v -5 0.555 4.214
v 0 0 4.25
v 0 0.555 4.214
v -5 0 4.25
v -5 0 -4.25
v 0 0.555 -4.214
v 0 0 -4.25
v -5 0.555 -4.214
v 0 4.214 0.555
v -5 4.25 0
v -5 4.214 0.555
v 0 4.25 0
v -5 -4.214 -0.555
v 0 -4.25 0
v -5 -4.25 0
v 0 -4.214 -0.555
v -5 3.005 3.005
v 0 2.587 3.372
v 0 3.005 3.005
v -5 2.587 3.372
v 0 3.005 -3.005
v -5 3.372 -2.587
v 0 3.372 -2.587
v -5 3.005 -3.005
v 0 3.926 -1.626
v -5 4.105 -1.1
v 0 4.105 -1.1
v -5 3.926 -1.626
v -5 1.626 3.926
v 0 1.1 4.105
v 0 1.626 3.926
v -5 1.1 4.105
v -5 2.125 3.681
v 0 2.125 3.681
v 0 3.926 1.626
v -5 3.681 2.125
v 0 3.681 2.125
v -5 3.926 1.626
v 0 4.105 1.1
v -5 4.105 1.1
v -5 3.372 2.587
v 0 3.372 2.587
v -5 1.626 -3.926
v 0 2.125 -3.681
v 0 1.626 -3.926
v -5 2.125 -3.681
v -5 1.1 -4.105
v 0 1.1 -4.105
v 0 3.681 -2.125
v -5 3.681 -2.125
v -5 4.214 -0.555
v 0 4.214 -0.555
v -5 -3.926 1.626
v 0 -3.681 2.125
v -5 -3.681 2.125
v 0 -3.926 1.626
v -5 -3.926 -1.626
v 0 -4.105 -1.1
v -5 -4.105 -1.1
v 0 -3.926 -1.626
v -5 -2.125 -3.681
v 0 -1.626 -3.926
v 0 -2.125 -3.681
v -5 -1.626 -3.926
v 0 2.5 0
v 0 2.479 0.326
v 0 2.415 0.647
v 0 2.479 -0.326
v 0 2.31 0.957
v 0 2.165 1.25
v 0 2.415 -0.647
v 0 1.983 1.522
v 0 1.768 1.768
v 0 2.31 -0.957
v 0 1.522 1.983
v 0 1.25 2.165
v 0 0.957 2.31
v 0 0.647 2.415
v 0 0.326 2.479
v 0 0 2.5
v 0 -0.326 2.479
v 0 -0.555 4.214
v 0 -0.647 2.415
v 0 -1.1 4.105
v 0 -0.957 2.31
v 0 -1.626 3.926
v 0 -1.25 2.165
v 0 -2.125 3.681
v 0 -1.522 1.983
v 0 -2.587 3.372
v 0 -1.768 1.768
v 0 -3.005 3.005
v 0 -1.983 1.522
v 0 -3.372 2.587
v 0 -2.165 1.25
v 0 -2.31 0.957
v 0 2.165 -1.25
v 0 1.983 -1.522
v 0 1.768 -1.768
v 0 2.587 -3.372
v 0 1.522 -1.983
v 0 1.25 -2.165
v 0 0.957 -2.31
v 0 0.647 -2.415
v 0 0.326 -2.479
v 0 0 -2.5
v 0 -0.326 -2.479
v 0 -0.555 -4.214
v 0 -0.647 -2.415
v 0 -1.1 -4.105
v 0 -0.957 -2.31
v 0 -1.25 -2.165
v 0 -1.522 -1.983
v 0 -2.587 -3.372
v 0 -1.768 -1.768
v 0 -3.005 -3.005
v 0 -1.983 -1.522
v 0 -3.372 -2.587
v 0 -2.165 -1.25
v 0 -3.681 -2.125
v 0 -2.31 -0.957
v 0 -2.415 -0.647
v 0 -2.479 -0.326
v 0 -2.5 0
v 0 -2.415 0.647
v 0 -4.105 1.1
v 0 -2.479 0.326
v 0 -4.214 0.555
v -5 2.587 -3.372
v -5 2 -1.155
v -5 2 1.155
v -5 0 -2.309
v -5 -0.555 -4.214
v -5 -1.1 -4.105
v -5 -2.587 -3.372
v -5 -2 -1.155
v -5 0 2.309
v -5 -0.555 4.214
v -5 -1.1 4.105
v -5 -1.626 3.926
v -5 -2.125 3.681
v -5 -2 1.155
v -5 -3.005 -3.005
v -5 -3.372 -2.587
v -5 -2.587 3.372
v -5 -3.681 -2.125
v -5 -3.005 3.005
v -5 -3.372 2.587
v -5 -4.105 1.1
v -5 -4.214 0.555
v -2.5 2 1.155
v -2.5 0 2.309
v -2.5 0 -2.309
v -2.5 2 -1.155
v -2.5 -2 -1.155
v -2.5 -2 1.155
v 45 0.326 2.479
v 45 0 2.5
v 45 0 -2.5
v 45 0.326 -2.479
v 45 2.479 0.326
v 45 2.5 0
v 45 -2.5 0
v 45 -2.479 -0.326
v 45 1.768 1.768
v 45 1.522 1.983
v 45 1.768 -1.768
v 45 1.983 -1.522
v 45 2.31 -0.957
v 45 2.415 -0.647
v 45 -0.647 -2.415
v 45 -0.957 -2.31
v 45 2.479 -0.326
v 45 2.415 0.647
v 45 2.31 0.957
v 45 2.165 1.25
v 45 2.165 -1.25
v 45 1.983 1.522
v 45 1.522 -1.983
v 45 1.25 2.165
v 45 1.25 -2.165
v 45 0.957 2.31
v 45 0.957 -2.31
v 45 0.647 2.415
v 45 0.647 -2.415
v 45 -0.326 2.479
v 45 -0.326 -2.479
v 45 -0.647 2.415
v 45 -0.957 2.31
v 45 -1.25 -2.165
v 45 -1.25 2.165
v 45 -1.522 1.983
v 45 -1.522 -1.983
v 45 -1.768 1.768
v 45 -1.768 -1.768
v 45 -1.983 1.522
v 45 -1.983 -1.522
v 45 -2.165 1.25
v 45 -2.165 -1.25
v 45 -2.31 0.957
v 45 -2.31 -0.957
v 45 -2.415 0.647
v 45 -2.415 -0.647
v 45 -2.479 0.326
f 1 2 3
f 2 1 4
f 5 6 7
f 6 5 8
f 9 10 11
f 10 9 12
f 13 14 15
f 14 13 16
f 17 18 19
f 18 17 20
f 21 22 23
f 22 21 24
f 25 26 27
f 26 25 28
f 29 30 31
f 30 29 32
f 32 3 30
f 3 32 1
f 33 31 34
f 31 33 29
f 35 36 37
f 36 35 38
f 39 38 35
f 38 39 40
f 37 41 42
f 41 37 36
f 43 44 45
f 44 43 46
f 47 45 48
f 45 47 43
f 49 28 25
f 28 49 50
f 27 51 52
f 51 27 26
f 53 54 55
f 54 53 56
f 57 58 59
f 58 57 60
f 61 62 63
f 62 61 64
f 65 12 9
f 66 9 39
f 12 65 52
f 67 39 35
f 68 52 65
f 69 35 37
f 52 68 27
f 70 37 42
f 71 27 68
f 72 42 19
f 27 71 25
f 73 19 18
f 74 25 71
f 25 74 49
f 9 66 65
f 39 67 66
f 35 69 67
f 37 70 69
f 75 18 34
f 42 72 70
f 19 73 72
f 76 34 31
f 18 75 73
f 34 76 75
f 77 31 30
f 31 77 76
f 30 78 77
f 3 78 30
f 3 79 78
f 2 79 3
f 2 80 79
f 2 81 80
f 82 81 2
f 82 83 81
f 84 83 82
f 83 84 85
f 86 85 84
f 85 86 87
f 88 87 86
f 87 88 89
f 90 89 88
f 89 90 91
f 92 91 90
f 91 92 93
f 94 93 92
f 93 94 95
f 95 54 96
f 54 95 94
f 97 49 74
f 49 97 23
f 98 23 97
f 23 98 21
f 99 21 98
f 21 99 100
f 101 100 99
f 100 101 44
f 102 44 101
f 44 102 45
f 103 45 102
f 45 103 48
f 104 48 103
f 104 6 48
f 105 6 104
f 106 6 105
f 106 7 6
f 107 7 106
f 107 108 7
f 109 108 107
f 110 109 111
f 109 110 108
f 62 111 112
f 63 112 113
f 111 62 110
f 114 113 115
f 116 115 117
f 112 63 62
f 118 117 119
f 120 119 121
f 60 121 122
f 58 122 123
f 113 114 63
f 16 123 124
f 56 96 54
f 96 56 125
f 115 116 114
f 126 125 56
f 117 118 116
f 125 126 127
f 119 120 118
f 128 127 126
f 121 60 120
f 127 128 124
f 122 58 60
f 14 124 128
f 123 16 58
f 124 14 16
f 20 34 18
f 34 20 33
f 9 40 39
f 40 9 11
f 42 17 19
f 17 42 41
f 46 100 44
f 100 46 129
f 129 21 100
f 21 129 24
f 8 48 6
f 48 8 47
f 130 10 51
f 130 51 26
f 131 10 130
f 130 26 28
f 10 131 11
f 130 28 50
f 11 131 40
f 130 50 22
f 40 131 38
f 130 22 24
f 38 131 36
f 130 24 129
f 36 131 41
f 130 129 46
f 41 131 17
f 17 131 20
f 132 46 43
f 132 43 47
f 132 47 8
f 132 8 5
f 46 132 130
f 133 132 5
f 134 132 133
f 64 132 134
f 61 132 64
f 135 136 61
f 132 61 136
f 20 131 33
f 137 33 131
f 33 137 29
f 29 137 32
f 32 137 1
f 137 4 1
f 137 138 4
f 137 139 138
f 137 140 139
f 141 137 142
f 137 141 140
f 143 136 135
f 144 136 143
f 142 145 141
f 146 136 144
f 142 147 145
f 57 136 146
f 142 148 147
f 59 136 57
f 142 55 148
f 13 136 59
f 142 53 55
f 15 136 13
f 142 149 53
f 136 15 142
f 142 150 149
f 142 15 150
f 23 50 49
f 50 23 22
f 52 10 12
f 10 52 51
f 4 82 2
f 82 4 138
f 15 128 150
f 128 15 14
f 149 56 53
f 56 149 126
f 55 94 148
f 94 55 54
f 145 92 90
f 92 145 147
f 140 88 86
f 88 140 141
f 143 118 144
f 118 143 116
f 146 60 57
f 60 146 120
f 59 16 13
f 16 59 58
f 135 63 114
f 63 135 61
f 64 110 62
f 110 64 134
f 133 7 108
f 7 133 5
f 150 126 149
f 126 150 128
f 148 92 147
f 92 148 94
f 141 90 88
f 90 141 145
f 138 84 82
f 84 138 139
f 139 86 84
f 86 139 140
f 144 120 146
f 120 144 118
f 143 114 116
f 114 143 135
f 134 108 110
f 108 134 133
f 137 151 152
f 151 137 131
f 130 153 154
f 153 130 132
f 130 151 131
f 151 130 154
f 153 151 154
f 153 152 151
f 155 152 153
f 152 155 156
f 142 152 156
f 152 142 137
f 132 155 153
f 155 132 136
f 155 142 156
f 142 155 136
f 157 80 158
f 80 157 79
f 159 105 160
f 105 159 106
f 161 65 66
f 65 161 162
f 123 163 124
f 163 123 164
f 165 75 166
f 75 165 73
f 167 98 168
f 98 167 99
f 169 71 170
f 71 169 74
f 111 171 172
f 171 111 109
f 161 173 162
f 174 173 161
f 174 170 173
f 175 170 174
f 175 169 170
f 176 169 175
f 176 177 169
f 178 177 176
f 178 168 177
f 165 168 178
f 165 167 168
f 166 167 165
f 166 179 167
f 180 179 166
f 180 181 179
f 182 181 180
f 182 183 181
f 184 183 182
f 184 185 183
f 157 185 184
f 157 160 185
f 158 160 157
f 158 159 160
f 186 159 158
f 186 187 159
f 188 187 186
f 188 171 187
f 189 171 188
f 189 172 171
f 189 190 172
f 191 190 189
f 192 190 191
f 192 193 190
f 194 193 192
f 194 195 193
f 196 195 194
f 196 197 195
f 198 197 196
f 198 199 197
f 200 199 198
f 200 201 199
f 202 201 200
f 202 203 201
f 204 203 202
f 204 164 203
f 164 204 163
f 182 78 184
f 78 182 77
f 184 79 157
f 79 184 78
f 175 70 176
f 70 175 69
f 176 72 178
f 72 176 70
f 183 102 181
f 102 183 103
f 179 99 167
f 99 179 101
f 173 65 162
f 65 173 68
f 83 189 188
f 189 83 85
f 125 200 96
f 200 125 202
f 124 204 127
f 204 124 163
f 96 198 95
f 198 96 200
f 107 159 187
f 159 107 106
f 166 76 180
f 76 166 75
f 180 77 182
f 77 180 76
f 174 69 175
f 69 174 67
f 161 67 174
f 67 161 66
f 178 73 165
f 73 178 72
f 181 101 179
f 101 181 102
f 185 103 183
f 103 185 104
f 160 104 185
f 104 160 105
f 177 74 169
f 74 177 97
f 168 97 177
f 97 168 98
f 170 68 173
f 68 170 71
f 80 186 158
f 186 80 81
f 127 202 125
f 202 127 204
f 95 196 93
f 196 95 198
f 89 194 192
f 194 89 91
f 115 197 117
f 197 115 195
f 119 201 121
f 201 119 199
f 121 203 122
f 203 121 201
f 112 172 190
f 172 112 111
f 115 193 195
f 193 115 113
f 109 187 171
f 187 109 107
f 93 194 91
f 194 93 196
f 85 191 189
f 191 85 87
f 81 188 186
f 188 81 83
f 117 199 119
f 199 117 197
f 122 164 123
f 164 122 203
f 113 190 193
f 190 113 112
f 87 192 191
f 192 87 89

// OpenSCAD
// file: ../../../lib/nutsnbolts/data-access.scad
// Norm Nuts and Bolts - a OpenSCAD library
// Copyright (C) 2012  Johannes Kneer

// This program is free software: you can redistribute it and/or modify
// it under the terms of the GNU General Public License as published by
// the Free Software Foundation, either version 3 of the License, or
// (at your option) any later version.

// This program is distributed in the hope that it will be useful,
// but WITHOUT ANY WARRANTY; without even the implied warranty of
// MERCHANTABILITY or FITNESS FOR A PARTICULAR PURPOSE.  See the
// GNU General Public License for more details.

// You should have received a copy of the GNU General Public License
// along with this program.  If not, see <http://www.gnu.org/licenses/>.


// DATABASE ACCESS FUNCTIONS AND CONSTANTS



// == CONSTANTS ==

// screw table access keys
_NB_S_DESC            = 0;
_NB_S_FAMKEY			    = 1;
_NB_S_LENGTH          = 2;
_NB_S_NOTHREAD_LENGTH = 3;

_NB_F_DESC			      = 0;
_NB_F_OUTER_DIA       = 1;
_NB_F_INNER_DIA       = 2;
_NB_F_LEAD            = 3;
_NB_F_KEY             = 4;
_NB_F_KEY_DEPTH       = 5;
_NB_F_HEAD_HEIGHT     = 6;
_NB_F_HEAD_DIA        = 7;
_NB_F_NUT_KEY         = 8;
_NB_F_NUT_HEIGHT      = 9;
_NB_F_PITCH_FINE      = 10;
_NB_F_PITCH_MEDIUM    = 11;
_NB_F_PITCH_COARSE    = 12;


// == FUNCTIONS ==

// _get_screw("descriptor")   with descriptor = M8x25
//   find the line for a general object in the data matrix

function _get_screw(n) = data_screw[search([n], data_screw)[0]];
function _get_screw_fam(n) = data_screw_fam[search([_get_screw(n)[_NB_S_FAMKEY]], data_screw_fam)[0]];

function _get_fam(n) = data_screw_fam[search([n], data_screw_fam)[0]];


// _get_XXXXX("descriptor") functions
// find a single property in the database

function _get_desc(n)        = _get_screw(n)[_NB_S_DESC];
function _get_famkey(n)         = _get_screw(n)[_NB_S_FAMKEY];
function _get_length(n)      = _get_screw(n)[_NB_S_LENGTH];
function _get_nt_length(n)   = _get_screw(n)[_NB_S_NOTHREAD_LENGTH];

function _get_outer_dia(n)   = _get_screw_fam(n)[_NB_F_OUTER_DIA];
function _get_inner_dia(n)   = _get_screw_fam(n)[_NB_F_INNER_DIA];
function _get_lead(n)        = _get_screw_fam(n)[_NB_F_LEAD];
function _get_head_height(n) = _get_screw_fam(n)[_NB_F_HEAD_HEIGHT];
function _get_head_dia(n)    = _get_screw_fam(n)[_NB_F_HEAD_DIA];
function _get_nut_key(n)     = _get_screw_fam(n)[_NB_F_NUT_KEY];
function _get_nut_height(n)  = _get_screw_fam(n)[_NB_F_NUT_HEIGHT];
function _get_fine_pitch(n)  = _get_screw_fam(n)[_NB_F_PITCH_FINE];
function _get_medium_pitch(n)  = _get_screw_fam(n)[_NB_F_PITCH_MEDIUM];
function _get_coarse_pitch(n)  = _get_screw_fam(n)[_NB_F_PITCH_COARSE];
// main file
/**********************************************************************************************************************
 **
 ** parts/vitamins/screw_M5x45.scad
 **
 ** This file renders a screw of the dimensions specified by the file name.
 **
 **********************************************************************************************************************/

include <../../../lib/nutsnbolts/cyl_head_bolt.scad>;

$fn = 48;
rotate([0, -90, 0])
	screw("M5x45"); 
